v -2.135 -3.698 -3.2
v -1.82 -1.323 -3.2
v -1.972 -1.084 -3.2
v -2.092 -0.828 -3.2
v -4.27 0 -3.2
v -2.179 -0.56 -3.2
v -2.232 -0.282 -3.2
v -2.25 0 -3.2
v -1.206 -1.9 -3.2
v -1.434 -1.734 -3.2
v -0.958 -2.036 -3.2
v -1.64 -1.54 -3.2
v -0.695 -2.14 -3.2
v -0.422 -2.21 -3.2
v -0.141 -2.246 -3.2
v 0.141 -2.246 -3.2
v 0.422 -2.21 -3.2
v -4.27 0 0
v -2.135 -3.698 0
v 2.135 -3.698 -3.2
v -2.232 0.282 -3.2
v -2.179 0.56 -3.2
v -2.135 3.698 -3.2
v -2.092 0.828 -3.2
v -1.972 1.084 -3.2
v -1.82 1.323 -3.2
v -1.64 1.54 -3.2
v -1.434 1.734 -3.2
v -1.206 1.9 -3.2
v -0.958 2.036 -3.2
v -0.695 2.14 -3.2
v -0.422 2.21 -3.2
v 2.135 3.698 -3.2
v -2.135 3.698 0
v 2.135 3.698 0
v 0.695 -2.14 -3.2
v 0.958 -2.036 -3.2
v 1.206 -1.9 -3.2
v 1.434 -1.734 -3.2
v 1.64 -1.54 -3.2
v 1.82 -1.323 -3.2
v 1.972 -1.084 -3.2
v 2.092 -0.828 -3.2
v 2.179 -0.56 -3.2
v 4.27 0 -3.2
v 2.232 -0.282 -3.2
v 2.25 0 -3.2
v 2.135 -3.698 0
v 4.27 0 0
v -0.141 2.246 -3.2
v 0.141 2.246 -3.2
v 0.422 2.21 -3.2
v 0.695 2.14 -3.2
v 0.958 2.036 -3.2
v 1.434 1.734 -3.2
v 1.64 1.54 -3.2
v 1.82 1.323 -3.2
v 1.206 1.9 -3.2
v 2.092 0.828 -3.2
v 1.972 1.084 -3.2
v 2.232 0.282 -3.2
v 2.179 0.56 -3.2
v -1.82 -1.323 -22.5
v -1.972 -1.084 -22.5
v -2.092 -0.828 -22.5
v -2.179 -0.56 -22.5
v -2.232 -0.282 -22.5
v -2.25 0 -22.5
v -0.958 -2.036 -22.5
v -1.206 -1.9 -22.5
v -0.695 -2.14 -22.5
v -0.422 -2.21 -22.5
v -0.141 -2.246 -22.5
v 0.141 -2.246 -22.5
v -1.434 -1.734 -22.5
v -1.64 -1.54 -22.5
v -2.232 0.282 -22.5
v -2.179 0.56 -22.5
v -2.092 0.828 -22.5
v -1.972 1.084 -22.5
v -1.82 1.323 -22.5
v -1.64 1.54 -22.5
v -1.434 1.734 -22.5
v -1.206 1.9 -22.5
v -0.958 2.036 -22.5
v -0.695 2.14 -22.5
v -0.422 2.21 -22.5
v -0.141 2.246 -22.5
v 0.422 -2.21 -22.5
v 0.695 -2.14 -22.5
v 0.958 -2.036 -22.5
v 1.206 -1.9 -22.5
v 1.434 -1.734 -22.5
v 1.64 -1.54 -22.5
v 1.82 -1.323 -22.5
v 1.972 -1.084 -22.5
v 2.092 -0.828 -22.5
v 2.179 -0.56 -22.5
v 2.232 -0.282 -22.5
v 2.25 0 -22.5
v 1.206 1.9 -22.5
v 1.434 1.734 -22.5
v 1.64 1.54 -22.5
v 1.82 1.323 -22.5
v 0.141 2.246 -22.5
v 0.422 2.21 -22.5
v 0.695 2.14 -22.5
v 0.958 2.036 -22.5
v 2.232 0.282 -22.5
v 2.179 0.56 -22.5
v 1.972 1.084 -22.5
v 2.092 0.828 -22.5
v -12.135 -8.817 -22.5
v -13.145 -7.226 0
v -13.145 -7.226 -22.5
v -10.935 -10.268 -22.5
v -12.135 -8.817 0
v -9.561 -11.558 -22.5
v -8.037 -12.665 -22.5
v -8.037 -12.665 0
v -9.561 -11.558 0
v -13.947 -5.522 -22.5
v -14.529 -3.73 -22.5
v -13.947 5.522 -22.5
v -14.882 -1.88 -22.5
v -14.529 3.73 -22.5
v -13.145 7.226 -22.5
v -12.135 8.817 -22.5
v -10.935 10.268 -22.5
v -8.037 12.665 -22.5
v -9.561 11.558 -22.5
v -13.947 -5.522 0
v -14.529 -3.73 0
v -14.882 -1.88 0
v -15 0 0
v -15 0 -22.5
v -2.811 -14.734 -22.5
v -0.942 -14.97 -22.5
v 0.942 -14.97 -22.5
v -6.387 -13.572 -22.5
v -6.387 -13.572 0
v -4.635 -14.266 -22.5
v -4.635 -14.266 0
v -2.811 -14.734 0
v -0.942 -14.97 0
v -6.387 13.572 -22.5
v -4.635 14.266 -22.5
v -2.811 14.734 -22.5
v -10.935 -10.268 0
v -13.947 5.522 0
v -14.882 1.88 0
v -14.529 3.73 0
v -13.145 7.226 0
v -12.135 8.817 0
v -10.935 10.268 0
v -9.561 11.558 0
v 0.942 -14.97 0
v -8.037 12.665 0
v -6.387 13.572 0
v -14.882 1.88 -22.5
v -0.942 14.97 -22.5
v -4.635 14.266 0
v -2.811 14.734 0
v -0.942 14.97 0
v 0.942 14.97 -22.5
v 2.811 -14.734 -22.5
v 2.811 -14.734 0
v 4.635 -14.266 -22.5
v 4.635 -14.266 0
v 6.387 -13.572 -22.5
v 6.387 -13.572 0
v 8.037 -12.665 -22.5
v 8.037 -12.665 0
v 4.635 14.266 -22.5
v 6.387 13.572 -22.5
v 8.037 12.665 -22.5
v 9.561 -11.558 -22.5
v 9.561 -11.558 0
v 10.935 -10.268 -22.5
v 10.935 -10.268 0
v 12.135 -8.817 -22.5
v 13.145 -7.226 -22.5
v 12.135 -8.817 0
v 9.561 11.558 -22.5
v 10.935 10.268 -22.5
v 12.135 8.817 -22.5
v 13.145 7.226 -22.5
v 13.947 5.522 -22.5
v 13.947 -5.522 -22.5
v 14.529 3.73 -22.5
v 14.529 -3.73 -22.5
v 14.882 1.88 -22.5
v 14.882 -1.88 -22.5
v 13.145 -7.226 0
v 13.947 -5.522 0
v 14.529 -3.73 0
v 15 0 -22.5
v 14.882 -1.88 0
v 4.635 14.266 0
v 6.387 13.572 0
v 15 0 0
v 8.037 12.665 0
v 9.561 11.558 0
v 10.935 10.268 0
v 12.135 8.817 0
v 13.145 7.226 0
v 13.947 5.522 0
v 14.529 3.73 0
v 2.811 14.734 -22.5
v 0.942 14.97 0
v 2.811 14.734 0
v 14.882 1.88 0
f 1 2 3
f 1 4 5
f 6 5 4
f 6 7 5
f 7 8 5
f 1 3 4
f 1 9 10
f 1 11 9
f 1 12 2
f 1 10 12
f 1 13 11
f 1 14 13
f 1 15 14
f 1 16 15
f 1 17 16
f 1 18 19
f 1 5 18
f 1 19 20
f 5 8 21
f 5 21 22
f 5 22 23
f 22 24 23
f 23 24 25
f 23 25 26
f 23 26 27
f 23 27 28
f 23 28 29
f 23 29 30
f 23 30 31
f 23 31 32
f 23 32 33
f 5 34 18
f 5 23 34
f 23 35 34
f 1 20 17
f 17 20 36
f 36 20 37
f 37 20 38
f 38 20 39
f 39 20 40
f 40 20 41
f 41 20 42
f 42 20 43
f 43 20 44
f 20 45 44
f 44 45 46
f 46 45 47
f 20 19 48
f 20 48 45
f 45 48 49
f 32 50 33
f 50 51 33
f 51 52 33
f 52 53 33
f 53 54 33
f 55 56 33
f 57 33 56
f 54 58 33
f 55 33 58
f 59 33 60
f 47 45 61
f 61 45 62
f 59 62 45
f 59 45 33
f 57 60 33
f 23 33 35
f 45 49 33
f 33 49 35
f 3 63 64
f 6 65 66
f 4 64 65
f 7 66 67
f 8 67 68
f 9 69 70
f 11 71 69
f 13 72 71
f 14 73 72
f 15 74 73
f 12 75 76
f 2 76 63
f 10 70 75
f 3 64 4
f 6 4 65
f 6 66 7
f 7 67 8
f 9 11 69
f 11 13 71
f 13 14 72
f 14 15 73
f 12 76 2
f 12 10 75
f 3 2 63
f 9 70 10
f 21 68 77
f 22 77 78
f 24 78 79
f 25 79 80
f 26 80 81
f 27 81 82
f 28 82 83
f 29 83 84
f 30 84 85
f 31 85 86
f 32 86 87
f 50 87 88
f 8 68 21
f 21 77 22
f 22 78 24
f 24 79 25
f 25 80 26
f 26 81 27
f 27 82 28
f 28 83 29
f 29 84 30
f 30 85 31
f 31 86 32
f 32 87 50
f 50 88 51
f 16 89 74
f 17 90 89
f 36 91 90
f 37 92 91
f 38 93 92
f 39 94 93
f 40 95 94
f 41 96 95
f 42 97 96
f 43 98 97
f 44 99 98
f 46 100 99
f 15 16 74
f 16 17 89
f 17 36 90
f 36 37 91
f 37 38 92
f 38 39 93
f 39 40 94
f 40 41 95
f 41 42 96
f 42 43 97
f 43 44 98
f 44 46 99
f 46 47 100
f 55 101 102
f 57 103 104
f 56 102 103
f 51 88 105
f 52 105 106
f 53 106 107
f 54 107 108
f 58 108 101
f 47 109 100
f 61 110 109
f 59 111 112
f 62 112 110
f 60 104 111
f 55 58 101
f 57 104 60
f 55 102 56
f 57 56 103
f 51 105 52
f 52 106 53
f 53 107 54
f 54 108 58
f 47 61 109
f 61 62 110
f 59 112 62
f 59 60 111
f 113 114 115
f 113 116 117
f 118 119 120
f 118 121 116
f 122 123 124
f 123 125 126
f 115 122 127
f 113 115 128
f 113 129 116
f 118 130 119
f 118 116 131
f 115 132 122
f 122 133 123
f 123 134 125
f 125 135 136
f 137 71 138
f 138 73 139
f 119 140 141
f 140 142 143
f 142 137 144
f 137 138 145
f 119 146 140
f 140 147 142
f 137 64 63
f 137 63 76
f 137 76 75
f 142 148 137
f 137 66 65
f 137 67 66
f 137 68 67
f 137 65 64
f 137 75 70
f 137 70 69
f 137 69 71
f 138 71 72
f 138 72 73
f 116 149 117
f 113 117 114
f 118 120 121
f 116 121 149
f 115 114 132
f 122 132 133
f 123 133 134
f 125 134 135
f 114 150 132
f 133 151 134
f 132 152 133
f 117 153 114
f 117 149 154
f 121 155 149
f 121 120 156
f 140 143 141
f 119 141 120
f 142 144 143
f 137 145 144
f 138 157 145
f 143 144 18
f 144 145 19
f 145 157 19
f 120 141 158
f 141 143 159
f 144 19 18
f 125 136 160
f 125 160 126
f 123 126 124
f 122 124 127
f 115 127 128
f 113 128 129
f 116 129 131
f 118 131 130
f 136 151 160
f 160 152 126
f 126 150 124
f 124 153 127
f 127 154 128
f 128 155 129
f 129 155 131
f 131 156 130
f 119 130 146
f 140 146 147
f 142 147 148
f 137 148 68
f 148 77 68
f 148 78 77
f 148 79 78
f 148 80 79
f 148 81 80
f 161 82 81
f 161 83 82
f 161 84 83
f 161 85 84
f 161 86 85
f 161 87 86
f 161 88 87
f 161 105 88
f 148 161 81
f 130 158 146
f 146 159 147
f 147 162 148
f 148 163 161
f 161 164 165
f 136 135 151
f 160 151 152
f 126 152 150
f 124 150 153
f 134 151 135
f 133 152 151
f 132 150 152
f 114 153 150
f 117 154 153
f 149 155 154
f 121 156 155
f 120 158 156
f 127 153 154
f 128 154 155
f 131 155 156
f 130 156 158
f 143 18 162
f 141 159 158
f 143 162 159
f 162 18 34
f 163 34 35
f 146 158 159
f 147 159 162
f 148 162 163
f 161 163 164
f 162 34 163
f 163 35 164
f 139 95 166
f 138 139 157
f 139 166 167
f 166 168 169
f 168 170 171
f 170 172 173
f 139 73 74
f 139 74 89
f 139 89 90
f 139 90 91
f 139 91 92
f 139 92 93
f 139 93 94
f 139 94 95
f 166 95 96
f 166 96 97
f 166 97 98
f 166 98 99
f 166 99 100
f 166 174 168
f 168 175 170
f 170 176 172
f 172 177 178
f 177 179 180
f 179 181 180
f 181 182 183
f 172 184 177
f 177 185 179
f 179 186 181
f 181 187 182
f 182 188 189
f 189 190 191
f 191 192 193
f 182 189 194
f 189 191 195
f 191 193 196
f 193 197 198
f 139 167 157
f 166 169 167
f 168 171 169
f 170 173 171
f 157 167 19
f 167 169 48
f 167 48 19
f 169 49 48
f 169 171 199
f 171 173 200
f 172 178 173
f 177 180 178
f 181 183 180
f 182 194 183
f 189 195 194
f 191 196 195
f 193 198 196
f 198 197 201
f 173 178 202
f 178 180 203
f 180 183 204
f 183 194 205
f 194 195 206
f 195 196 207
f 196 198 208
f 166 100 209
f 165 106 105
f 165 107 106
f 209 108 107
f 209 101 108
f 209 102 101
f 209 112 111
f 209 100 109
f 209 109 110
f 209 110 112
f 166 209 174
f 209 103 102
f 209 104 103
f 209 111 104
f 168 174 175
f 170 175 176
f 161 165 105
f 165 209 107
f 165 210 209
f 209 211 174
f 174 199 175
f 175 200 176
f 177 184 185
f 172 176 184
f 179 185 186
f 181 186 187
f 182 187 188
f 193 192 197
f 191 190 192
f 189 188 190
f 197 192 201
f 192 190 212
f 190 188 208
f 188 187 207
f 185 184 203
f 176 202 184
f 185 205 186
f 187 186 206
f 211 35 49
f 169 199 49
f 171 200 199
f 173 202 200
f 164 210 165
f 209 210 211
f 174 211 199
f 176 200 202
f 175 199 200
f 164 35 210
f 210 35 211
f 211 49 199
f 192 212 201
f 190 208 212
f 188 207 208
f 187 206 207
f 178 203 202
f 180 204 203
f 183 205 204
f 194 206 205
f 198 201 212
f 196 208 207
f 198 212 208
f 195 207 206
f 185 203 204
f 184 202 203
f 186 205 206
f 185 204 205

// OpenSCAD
$fn = 50;

difference() {
	union() {
		translate(v = [0, 0, -22.5]) {
			cylinder(h = 22.5, r = 15.0);
		}
	}
	union() {
		translate(v = [0, 0, 0]) {
			rotate(a = [0, 0, 0]) {
				difference() {
					union() {
						translate(v = [0, 0, -3.2]) {
							linear_extrude(height = 3.2) {
								polygon(points = [[4.2698, 0.0], [2.1349000000000005, 3.697755269078796], [-2.134899999999999, 3.6977552690787965], [-4.2698, 5.228996902999369e-16], [-2.134900000000002, -3.6977552690787956], [2.1348999999999974, -3.697755269078798]]);
							}
						}
					}
					union();
				}
			}
		}
		#translate(v = [0, 0, -100.0]) {
			cylinder(h = 200, r = 2.25);
		}
	}
}
